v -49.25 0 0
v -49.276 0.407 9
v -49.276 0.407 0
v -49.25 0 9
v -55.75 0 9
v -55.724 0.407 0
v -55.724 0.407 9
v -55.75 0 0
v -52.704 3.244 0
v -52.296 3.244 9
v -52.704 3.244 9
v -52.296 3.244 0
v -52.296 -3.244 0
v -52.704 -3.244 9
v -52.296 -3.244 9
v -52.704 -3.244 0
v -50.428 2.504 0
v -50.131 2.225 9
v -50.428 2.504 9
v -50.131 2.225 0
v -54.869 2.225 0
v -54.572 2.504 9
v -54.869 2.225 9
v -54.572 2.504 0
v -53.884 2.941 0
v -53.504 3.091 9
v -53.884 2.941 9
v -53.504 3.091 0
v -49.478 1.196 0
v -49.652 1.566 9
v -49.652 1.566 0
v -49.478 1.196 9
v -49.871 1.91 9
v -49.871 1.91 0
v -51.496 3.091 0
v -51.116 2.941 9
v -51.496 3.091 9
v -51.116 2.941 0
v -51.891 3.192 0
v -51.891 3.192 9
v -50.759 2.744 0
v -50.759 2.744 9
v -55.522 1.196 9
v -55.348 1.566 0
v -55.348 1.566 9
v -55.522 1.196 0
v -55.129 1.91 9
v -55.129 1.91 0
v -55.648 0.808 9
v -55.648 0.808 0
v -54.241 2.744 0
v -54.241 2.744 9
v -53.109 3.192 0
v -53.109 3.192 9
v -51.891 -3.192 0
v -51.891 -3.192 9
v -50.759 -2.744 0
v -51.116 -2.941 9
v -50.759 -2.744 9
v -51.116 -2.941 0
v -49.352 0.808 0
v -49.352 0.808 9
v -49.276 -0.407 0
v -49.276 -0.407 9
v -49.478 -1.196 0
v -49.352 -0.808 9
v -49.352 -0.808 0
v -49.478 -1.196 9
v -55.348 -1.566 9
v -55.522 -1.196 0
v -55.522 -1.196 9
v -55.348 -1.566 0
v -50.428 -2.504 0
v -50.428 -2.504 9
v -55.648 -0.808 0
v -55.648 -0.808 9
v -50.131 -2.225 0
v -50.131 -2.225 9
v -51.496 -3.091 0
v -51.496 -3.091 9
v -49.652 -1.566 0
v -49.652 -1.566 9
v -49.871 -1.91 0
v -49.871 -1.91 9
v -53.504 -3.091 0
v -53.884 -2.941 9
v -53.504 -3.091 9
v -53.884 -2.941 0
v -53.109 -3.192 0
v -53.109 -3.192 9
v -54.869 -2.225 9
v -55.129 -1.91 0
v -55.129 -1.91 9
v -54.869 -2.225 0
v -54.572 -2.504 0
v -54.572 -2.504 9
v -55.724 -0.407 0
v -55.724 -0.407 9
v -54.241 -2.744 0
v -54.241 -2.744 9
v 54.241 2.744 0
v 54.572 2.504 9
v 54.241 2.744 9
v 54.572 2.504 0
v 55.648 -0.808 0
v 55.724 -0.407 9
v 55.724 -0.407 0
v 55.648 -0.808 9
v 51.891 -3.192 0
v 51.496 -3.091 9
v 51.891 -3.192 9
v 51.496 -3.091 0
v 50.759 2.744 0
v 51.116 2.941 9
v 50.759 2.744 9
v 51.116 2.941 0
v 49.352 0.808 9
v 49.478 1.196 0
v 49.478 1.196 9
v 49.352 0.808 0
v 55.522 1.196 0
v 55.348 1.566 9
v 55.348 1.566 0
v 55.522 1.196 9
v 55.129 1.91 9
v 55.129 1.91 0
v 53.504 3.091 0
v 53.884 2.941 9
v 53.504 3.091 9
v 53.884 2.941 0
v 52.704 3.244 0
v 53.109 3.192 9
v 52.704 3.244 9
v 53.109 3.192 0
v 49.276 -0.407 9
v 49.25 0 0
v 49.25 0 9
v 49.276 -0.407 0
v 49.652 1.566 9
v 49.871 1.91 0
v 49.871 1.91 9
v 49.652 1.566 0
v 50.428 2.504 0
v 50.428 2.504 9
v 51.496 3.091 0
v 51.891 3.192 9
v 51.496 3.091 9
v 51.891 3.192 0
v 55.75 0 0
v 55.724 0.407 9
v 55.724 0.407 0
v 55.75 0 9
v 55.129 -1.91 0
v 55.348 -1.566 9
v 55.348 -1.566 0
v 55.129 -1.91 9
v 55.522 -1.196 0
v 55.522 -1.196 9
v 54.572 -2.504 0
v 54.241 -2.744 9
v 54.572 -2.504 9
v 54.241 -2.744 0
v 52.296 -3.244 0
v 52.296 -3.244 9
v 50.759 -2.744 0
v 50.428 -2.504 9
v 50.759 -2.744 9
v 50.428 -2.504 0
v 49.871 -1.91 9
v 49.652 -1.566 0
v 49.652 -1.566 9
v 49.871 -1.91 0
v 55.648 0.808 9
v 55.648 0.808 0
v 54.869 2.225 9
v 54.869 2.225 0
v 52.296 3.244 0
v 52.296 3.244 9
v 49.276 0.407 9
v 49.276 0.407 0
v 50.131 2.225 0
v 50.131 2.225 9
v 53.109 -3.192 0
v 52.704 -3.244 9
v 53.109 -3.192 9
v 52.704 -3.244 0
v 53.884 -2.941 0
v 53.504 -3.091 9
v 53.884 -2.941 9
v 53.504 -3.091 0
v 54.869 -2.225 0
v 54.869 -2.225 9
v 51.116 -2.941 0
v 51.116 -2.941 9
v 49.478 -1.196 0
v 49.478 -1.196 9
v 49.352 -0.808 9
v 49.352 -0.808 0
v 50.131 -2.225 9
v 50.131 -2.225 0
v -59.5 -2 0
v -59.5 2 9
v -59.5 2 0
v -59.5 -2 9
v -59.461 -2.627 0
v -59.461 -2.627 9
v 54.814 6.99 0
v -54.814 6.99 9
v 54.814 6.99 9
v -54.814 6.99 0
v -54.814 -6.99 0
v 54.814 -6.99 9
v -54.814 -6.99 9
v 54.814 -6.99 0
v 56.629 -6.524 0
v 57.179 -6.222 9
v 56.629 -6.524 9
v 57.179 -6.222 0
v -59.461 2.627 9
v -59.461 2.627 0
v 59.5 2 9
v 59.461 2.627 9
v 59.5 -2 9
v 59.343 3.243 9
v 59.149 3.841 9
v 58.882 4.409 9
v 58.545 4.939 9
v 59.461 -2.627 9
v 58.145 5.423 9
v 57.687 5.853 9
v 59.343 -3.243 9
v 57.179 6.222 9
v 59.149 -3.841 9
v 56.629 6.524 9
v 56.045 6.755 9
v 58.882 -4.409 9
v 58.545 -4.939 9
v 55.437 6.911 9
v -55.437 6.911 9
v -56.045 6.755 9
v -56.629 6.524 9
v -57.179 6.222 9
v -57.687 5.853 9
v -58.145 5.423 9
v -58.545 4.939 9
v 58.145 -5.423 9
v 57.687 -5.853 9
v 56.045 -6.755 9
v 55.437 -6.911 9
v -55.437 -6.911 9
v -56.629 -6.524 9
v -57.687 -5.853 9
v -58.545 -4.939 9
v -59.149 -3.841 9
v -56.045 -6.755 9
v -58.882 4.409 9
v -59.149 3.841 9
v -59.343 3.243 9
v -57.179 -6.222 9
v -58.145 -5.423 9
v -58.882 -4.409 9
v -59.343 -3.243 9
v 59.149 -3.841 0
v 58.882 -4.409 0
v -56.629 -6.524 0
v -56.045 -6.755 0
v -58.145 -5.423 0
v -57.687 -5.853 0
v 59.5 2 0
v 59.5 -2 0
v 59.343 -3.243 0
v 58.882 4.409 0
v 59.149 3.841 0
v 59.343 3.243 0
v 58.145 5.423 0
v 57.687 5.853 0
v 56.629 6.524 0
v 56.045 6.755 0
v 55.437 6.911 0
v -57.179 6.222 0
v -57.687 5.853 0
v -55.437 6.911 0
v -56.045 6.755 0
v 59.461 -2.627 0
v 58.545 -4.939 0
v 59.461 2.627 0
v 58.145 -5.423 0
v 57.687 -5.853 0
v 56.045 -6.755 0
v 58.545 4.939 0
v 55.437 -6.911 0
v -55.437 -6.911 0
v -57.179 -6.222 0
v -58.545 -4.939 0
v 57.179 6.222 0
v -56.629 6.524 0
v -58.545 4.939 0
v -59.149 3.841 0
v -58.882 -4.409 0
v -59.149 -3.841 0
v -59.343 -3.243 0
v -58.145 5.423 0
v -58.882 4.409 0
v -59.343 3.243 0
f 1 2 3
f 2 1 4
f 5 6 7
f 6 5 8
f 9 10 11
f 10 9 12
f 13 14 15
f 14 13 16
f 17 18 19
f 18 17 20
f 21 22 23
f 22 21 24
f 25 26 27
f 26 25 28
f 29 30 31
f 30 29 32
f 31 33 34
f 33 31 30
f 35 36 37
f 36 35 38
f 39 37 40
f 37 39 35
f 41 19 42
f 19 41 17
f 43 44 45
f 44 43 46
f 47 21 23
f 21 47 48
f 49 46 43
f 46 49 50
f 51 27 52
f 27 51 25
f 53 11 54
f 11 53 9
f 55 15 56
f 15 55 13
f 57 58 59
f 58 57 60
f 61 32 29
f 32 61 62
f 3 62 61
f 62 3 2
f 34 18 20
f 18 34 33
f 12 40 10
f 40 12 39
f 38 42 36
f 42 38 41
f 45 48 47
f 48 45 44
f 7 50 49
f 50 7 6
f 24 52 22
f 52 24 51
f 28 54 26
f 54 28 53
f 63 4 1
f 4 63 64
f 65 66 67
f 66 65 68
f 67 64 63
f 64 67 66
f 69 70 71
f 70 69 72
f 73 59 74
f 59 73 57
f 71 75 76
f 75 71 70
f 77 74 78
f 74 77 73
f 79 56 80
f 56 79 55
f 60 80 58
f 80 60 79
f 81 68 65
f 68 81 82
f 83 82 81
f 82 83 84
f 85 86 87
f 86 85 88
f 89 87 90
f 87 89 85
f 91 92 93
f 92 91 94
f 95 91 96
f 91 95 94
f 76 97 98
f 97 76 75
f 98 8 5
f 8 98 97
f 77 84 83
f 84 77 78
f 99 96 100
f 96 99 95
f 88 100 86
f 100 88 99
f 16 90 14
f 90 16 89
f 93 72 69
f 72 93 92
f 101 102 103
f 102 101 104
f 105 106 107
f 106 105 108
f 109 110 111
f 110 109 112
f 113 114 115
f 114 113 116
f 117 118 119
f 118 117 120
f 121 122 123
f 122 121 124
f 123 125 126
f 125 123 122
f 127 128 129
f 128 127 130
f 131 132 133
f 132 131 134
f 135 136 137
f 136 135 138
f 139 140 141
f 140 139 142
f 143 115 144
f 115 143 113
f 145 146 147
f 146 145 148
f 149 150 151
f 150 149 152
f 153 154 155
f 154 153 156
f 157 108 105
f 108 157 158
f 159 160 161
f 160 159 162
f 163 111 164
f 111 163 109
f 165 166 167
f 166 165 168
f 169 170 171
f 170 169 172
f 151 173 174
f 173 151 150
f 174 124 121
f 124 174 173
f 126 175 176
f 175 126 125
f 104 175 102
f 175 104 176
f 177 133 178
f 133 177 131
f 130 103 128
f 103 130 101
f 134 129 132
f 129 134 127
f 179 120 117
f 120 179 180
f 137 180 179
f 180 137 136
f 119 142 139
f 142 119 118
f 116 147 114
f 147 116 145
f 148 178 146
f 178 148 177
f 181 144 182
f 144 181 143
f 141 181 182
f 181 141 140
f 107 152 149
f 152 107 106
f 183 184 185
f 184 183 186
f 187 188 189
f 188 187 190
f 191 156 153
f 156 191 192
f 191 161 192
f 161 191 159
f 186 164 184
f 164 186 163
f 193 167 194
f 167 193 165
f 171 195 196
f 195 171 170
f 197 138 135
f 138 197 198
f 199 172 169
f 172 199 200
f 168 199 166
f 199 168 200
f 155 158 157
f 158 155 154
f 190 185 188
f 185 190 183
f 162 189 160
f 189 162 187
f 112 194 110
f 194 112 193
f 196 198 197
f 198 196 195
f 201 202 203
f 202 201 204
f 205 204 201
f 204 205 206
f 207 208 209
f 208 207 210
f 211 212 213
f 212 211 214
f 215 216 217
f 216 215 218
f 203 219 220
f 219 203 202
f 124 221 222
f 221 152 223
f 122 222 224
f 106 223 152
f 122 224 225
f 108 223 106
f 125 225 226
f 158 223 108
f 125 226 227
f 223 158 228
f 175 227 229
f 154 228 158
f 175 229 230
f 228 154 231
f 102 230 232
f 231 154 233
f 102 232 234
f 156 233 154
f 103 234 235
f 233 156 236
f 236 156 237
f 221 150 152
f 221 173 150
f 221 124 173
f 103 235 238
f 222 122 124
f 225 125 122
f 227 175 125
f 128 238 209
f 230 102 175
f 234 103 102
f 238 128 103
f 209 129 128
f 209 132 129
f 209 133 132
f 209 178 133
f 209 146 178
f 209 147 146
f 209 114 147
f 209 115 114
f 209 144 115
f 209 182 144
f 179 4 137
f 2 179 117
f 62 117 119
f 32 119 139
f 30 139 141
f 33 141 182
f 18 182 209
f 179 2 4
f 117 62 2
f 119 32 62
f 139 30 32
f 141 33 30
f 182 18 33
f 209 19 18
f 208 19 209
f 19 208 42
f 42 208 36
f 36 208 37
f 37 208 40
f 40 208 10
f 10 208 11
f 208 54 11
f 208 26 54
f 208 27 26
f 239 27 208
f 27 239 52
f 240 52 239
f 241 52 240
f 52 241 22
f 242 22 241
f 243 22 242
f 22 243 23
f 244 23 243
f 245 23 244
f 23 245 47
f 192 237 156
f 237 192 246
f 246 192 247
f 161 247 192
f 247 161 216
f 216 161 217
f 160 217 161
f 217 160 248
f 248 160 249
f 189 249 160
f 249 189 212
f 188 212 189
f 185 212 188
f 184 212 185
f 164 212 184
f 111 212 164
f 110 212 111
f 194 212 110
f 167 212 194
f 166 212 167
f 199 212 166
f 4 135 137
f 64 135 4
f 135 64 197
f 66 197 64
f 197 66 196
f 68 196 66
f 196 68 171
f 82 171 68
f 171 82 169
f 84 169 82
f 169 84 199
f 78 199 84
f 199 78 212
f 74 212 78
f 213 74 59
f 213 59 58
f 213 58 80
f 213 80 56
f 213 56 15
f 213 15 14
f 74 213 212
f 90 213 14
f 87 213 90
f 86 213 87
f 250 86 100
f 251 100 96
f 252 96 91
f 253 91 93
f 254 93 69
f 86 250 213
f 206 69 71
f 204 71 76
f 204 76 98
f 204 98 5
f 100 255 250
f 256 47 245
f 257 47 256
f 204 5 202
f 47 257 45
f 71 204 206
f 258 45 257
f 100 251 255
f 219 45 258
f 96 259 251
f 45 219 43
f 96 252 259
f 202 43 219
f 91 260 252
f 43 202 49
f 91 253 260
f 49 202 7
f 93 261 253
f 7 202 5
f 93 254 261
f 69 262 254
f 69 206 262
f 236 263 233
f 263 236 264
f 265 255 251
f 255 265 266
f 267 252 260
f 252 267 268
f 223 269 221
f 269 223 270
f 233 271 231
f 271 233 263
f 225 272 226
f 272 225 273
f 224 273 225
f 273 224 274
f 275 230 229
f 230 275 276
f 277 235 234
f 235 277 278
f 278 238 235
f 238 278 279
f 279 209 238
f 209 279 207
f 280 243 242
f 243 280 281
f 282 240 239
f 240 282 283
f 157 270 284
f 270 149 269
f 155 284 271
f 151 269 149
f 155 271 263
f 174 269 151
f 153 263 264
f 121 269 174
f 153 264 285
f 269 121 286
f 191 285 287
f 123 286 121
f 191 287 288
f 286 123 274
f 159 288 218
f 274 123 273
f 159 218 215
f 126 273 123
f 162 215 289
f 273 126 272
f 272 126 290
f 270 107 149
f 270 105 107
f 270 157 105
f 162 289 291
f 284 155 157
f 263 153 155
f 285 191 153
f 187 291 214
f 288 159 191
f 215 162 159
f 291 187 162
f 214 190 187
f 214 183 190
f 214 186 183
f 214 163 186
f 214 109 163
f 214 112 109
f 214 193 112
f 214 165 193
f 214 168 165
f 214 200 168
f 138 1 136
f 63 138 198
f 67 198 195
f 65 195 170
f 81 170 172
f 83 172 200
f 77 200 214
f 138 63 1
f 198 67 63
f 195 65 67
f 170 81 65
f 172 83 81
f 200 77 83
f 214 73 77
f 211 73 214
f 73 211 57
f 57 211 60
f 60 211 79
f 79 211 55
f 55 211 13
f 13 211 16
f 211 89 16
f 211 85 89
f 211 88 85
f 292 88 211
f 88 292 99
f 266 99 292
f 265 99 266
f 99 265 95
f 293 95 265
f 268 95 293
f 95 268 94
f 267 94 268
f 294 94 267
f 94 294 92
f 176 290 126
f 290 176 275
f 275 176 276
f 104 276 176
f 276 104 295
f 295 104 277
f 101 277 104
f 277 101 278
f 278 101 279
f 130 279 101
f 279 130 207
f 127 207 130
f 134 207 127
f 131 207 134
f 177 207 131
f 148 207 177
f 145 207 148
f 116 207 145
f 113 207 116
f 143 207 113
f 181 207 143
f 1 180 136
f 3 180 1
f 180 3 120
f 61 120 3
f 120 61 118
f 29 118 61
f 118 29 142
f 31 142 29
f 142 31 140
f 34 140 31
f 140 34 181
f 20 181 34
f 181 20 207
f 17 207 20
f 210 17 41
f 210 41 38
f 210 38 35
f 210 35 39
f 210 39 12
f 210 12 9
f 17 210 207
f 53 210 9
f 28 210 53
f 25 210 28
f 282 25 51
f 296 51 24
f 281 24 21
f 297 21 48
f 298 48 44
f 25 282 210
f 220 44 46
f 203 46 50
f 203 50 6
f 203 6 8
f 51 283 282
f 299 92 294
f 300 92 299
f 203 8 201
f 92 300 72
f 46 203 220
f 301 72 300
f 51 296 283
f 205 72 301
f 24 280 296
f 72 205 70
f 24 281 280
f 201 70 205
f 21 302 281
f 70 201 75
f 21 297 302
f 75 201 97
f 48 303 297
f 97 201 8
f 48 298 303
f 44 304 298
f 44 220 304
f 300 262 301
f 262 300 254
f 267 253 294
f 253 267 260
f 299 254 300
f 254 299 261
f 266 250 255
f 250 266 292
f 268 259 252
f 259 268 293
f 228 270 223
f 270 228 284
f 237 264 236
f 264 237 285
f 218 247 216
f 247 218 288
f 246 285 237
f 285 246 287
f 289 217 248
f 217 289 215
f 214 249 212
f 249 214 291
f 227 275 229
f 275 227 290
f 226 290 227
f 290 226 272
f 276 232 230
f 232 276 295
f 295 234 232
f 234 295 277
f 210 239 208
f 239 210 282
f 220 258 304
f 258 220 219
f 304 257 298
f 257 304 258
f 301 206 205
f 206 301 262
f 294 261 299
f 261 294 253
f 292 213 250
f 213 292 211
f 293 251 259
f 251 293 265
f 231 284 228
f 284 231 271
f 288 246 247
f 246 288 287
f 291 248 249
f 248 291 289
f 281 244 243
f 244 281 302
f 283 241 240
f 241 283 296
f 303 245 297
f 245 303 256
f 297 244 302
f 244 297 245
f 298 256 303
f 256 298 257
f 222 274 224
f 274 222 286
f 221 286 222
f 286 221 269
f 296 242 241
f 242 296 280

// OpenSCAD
$fn = 50;


difference() {
	union() {
		hull() {
			translate(v = [-54.5000000000, 2.0000000000, 0]) {
				cylinder(h = 9, r = 5);
			}
			translate(v = [54.5000000000, 2.0000000000, 0]) {
				cylinder(h = 9, r = 5);
			}
			translate(v = [-54.5000000000, -2.0000000000, 0]) {
				cylinder(h = 9, r = 5);
			}
			translate(v = [54.5000000000, -2.0000000000, 0]) {
				cylinder(h = 9, r = 5);
			}
		}
	}
	union() {
		translate(v = [-52.5000000000, 0.0000000000, -100.0000000000]) {
			cylinder(h = 200, r = 3.2500000000);
		}
		translate(v = [-52.5000000000, 0.0000000000, -100.0000000000]) {
			cylinder(h = 200, r = 3.2500000000);
		}
		translate(v = [52.5000000000, 0.0000000000, -100.0000000000]) {
			cylinder(h = 200, r = 3.2500000000);
		}
		translate(v = [52.5000000000, 0.0000000000, -100.0000000000]) {
			cylinder(h = 200, r = 3.2500000000);
		}
	}
}
